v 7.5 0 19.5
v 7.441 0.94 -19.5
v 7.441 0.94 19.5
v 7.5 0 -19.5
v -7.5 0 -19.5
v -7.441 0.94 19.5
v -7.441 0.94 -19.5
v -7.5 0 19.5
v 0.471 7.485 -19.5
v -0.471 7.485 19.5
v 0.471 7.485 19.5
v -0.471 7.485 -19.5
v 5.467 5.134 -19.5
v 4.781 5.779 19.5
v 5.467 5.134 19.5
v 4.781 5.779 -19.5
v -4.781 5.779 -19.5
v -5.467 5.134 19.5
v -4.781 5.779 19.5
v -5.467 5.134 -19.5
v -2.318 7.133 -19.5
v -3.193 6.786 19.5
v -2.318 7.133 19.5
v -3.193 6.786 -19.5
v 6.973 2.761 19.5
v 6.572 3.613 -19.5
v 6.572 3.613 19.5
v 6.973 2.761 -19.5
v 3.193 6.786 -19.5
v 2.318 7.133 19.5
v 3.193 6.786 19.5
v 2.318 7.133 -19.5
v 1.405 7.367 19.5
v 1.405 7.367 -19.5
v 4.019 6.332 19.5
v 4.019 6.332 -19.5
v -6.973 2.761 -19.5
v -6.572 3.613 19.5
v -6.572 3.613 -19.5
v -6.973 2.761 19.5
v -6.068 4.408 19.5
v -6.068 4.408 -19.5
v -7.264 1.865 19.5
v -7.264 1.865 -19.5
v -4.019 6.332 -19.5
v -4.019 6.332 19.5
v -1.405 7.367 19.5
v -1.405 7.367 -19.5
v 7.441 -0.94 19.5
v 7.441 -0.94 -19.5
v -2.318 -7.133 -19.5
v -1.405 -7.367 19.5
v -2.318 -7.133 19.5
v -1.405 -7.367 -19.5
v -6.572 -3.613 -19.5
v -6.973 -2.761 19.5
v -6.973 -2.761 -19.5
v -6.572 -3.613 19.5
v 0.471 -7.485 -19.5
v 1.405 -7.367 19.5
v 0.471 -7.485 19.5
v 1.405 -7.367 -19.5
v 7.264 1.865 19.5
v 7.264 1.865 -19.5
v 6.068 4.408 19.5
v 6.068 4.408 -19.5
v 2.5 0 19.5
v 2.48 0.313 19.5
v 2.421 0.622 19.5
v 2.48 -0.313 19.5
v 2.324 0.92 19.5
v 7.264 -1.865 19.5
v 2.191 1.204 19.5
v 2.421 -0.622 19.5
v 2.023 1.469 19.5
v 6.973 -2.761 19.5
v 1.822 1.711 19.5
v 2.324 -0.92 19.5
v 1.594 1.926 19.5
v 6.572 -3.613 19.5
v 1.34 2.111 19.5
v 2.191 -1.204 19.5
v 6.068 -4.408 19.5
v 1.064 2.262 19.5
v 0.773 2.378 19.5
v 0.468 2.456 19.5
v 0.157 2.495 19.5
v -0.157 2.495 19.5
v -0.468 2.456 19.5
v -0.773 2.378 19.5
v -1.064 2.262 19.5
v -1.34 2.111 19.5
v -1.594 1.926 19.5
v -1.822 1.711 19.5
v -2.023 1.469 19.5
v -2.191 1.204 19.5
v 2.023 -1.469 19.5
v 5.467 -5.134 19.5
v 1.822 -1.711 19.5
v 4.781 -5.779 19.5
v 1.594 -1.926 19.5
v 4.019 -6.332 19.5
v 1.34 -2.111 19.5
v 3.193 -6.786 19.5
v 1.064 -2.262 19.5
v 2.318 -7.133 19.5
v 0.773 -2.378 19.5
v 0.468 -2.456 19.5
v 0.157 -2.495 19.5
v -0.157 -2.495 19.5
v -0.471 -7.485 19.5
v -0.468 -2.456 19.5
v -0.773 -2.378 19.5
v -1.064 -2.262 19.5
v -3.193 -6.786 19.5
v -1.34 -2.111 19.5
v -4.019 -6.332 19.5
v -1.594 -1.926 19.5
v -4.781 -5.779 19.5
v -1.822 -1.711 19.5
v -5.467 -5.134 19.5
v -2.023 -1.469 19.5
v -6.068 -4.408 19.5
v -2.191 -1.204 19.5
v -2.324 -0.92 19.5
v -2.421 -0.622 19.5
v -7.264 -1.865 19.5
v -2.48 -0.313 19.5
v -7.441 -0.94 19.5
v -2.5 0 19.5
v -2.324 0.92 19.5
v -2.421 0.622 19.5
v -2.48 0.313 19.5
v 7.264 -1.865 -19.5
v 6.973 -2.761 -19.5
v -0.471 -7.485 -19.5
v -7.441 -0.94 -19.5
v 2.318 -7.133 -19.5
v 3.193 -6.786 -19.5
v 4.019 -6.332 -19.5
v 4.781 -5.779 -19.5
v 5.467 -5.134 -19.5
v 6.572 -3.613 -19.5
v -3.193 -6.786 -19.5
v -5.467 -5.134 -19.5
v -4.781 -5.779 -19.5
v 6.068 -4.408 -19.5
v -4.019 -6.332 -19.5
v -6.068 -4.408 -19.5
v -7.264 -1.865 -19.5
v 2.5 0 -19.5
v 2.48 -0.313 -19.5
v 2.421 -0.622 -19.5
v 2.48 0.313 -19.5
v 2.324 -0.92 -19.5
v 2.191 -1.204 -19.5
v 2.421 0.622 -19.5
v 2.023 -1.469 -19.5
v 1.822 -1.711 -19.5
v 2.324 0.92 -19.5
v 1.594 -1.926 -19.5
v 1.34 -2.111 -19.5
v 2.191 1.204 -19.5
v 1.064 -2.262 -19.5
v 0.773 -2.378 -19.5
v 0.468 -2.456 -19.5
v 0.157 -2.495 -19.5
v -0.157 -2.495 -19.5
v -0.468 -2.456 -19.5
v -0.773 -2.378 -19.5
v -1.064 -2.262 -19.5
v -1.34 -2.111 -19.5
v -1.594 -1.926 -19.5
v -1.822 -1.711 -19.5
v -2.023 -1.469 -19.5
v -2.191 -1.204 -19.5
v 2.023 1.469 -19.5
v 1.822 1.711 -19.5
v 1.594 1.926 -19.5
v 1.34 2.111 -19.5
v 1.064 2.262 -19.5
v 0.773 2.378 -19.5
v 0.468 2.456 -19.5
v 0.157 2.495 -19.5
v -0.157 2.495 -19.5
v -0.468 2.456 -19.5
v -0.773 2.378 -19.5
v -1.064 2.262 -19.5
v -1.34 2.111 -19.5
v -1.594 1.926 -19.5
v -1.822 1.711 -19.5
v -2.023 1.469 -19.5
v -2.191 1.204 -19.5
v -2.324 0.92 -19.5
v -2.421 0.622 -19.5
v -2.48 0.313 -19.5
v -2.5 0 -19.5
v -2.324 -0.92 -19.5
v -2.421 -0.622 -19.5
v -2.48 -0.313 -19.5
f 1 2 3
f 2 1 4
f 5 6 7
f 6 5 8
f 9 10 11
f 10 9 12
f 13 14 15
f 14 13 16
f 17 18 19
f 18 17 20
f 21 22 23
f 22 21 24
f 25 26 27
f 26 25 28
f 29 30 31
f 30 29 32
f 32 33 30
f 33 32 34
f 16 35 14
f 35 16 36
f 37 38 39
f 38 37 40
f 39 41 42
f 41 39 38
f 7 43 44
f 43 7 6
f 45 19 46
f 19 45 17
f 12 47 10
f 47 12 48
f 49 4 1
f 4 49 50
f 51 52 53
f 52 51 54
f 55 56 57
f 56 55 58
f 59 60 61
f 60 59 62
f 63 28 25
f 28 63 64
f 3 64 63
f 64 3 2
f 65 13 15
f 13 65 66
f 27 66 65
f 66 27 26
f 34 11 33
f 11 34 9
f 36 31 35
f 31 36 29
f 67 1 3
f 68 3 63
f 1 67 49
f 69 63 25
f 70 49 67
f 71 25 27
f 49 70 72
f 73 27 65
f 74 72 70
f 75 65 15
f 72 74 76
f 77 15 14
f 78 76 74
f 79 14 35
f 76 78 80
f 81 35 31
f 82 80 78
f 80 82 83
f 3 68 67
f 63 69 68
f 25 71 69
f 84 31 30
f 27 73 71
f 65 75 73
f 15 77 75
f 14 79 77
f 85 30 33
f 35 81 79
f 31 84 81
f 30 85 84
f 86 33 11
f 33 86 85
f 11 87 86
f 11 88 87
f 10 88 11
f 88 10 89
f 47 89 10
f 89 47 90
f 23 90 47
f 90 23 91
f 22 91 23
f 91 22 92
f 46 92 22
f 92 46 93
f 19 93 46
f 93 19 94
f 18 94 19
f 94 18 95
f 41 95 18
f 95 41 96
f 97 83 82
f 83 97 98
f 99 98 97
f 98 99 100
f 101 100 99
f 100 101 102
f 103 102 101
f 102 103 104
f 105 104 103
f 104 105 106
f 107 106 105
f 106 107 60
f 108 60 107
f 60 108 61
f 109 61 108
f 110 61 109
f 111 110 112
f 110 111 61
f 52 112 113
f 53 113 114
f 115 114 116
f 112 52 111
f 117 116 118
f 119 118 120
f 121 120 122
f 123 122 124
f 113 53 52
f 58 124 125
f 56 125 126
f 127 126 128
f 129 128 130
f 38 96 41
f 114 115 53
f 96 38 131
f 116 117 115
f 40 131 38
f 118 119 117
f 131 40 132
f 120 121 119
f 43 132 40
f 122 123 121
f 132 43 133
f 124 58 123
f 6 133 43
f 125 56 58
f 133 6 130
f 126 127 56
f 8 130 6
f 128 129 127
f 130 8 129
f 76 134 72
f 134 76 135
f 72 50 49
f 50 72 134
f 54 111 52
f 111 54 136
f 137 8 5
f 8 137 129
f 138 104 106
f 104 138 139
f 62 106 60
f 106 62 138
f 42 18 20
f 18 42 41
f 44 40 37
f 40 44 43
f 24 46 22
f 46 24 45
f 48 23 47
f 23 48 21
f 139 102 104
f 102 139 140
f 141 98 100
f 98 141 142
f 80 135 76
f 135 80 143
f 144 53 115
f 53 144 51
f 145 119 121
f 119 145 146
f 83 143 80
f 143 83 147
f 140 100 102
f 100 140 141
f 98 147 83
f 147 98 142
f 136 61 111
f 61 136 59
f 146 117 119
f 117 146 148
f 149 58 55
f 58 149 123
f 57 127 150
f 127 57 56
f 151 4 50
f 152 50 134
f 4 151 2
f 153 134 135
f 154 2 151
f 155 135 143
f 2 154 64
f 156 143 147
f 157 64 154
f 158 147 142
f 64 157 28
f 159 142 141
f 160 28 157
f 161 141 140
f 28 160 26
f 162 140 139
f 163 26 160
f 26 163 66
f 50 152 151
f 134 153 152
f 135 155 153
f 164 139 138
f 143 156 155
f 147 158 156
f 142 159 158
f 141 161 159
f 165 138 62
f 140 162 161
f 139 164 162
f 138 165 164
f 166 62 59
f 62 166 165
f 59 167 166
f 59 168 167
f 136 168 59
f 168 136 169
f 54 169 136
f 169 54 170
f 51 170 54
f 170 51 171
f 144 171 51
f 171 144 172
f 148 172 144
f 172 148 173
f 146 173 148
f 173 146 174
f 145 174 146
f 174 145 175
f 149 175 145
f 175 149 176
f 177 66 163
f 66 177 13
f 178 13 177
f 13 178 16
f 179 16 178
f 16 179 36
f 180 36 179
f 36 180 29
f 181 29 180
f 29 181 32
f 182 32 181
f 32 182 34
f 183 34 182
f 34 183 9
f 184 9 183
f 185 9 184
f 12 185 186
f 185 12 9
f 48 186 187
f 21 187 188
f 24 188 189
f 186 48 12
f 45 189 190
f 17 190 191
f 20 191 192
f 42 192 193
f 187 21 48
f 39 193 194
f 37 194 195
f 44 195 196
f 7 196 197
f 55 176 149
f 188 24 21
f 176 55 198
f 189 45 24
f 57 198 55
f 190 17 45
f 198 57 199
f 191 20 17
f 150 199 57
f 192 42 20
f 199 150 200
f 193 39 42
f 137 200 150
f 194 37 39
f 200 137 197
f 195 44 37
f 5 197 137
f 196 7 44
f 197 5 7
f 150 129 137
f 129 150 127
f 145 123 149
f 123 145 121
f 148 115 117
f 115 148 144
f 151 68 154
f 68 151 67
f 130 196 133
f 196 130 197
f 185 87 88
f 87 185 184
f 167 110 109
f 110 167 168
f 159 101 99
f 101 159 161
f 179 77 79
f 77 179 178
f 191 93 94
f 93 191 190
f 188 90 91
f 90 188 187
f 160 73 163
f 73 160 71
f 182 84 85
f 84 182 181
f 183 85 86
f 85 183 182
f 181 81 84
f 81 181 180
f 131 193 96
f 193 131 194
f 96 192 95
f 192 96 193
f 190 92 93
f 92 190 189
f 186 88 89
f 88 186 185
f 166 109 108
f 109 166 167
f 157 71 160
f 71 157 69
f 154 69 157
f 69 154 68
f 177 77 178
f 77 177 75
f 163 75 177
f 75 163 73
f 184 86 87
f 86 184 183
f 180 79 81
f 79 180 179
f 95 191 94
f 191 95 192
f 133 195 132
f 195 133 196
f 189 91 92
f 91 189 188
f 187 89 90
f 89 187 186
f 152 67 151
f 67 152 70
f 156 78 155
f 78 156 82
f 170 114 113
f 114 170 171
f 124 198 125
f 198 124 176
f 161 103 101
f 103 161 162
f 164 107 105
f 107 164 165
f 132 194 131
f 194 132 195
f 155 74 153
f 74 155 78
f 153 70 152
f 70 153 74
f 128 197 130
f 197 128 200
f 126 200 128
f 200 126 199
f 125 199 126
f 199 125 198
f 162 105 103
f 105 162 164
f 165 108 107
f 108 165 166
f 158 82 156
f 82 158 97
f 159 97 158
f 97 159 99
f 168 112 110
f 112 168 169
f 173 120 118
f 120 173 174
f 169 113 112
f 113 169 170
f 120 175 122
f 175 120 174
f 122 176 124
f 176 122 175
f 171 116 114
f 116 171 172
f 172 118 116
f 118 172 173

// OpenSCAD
$fn = 50;


difference() {
	union() {
		translate(v = [0, 0, -19.5000000000]) {
			cylinder(h = 39, r = 7.5000000000);
		}
	}
	union() {
		translate(v = [0, 0, -100.0000000000]) {
			cylinder(h = 200, r = 2.5000000000);
		}
	}
}
